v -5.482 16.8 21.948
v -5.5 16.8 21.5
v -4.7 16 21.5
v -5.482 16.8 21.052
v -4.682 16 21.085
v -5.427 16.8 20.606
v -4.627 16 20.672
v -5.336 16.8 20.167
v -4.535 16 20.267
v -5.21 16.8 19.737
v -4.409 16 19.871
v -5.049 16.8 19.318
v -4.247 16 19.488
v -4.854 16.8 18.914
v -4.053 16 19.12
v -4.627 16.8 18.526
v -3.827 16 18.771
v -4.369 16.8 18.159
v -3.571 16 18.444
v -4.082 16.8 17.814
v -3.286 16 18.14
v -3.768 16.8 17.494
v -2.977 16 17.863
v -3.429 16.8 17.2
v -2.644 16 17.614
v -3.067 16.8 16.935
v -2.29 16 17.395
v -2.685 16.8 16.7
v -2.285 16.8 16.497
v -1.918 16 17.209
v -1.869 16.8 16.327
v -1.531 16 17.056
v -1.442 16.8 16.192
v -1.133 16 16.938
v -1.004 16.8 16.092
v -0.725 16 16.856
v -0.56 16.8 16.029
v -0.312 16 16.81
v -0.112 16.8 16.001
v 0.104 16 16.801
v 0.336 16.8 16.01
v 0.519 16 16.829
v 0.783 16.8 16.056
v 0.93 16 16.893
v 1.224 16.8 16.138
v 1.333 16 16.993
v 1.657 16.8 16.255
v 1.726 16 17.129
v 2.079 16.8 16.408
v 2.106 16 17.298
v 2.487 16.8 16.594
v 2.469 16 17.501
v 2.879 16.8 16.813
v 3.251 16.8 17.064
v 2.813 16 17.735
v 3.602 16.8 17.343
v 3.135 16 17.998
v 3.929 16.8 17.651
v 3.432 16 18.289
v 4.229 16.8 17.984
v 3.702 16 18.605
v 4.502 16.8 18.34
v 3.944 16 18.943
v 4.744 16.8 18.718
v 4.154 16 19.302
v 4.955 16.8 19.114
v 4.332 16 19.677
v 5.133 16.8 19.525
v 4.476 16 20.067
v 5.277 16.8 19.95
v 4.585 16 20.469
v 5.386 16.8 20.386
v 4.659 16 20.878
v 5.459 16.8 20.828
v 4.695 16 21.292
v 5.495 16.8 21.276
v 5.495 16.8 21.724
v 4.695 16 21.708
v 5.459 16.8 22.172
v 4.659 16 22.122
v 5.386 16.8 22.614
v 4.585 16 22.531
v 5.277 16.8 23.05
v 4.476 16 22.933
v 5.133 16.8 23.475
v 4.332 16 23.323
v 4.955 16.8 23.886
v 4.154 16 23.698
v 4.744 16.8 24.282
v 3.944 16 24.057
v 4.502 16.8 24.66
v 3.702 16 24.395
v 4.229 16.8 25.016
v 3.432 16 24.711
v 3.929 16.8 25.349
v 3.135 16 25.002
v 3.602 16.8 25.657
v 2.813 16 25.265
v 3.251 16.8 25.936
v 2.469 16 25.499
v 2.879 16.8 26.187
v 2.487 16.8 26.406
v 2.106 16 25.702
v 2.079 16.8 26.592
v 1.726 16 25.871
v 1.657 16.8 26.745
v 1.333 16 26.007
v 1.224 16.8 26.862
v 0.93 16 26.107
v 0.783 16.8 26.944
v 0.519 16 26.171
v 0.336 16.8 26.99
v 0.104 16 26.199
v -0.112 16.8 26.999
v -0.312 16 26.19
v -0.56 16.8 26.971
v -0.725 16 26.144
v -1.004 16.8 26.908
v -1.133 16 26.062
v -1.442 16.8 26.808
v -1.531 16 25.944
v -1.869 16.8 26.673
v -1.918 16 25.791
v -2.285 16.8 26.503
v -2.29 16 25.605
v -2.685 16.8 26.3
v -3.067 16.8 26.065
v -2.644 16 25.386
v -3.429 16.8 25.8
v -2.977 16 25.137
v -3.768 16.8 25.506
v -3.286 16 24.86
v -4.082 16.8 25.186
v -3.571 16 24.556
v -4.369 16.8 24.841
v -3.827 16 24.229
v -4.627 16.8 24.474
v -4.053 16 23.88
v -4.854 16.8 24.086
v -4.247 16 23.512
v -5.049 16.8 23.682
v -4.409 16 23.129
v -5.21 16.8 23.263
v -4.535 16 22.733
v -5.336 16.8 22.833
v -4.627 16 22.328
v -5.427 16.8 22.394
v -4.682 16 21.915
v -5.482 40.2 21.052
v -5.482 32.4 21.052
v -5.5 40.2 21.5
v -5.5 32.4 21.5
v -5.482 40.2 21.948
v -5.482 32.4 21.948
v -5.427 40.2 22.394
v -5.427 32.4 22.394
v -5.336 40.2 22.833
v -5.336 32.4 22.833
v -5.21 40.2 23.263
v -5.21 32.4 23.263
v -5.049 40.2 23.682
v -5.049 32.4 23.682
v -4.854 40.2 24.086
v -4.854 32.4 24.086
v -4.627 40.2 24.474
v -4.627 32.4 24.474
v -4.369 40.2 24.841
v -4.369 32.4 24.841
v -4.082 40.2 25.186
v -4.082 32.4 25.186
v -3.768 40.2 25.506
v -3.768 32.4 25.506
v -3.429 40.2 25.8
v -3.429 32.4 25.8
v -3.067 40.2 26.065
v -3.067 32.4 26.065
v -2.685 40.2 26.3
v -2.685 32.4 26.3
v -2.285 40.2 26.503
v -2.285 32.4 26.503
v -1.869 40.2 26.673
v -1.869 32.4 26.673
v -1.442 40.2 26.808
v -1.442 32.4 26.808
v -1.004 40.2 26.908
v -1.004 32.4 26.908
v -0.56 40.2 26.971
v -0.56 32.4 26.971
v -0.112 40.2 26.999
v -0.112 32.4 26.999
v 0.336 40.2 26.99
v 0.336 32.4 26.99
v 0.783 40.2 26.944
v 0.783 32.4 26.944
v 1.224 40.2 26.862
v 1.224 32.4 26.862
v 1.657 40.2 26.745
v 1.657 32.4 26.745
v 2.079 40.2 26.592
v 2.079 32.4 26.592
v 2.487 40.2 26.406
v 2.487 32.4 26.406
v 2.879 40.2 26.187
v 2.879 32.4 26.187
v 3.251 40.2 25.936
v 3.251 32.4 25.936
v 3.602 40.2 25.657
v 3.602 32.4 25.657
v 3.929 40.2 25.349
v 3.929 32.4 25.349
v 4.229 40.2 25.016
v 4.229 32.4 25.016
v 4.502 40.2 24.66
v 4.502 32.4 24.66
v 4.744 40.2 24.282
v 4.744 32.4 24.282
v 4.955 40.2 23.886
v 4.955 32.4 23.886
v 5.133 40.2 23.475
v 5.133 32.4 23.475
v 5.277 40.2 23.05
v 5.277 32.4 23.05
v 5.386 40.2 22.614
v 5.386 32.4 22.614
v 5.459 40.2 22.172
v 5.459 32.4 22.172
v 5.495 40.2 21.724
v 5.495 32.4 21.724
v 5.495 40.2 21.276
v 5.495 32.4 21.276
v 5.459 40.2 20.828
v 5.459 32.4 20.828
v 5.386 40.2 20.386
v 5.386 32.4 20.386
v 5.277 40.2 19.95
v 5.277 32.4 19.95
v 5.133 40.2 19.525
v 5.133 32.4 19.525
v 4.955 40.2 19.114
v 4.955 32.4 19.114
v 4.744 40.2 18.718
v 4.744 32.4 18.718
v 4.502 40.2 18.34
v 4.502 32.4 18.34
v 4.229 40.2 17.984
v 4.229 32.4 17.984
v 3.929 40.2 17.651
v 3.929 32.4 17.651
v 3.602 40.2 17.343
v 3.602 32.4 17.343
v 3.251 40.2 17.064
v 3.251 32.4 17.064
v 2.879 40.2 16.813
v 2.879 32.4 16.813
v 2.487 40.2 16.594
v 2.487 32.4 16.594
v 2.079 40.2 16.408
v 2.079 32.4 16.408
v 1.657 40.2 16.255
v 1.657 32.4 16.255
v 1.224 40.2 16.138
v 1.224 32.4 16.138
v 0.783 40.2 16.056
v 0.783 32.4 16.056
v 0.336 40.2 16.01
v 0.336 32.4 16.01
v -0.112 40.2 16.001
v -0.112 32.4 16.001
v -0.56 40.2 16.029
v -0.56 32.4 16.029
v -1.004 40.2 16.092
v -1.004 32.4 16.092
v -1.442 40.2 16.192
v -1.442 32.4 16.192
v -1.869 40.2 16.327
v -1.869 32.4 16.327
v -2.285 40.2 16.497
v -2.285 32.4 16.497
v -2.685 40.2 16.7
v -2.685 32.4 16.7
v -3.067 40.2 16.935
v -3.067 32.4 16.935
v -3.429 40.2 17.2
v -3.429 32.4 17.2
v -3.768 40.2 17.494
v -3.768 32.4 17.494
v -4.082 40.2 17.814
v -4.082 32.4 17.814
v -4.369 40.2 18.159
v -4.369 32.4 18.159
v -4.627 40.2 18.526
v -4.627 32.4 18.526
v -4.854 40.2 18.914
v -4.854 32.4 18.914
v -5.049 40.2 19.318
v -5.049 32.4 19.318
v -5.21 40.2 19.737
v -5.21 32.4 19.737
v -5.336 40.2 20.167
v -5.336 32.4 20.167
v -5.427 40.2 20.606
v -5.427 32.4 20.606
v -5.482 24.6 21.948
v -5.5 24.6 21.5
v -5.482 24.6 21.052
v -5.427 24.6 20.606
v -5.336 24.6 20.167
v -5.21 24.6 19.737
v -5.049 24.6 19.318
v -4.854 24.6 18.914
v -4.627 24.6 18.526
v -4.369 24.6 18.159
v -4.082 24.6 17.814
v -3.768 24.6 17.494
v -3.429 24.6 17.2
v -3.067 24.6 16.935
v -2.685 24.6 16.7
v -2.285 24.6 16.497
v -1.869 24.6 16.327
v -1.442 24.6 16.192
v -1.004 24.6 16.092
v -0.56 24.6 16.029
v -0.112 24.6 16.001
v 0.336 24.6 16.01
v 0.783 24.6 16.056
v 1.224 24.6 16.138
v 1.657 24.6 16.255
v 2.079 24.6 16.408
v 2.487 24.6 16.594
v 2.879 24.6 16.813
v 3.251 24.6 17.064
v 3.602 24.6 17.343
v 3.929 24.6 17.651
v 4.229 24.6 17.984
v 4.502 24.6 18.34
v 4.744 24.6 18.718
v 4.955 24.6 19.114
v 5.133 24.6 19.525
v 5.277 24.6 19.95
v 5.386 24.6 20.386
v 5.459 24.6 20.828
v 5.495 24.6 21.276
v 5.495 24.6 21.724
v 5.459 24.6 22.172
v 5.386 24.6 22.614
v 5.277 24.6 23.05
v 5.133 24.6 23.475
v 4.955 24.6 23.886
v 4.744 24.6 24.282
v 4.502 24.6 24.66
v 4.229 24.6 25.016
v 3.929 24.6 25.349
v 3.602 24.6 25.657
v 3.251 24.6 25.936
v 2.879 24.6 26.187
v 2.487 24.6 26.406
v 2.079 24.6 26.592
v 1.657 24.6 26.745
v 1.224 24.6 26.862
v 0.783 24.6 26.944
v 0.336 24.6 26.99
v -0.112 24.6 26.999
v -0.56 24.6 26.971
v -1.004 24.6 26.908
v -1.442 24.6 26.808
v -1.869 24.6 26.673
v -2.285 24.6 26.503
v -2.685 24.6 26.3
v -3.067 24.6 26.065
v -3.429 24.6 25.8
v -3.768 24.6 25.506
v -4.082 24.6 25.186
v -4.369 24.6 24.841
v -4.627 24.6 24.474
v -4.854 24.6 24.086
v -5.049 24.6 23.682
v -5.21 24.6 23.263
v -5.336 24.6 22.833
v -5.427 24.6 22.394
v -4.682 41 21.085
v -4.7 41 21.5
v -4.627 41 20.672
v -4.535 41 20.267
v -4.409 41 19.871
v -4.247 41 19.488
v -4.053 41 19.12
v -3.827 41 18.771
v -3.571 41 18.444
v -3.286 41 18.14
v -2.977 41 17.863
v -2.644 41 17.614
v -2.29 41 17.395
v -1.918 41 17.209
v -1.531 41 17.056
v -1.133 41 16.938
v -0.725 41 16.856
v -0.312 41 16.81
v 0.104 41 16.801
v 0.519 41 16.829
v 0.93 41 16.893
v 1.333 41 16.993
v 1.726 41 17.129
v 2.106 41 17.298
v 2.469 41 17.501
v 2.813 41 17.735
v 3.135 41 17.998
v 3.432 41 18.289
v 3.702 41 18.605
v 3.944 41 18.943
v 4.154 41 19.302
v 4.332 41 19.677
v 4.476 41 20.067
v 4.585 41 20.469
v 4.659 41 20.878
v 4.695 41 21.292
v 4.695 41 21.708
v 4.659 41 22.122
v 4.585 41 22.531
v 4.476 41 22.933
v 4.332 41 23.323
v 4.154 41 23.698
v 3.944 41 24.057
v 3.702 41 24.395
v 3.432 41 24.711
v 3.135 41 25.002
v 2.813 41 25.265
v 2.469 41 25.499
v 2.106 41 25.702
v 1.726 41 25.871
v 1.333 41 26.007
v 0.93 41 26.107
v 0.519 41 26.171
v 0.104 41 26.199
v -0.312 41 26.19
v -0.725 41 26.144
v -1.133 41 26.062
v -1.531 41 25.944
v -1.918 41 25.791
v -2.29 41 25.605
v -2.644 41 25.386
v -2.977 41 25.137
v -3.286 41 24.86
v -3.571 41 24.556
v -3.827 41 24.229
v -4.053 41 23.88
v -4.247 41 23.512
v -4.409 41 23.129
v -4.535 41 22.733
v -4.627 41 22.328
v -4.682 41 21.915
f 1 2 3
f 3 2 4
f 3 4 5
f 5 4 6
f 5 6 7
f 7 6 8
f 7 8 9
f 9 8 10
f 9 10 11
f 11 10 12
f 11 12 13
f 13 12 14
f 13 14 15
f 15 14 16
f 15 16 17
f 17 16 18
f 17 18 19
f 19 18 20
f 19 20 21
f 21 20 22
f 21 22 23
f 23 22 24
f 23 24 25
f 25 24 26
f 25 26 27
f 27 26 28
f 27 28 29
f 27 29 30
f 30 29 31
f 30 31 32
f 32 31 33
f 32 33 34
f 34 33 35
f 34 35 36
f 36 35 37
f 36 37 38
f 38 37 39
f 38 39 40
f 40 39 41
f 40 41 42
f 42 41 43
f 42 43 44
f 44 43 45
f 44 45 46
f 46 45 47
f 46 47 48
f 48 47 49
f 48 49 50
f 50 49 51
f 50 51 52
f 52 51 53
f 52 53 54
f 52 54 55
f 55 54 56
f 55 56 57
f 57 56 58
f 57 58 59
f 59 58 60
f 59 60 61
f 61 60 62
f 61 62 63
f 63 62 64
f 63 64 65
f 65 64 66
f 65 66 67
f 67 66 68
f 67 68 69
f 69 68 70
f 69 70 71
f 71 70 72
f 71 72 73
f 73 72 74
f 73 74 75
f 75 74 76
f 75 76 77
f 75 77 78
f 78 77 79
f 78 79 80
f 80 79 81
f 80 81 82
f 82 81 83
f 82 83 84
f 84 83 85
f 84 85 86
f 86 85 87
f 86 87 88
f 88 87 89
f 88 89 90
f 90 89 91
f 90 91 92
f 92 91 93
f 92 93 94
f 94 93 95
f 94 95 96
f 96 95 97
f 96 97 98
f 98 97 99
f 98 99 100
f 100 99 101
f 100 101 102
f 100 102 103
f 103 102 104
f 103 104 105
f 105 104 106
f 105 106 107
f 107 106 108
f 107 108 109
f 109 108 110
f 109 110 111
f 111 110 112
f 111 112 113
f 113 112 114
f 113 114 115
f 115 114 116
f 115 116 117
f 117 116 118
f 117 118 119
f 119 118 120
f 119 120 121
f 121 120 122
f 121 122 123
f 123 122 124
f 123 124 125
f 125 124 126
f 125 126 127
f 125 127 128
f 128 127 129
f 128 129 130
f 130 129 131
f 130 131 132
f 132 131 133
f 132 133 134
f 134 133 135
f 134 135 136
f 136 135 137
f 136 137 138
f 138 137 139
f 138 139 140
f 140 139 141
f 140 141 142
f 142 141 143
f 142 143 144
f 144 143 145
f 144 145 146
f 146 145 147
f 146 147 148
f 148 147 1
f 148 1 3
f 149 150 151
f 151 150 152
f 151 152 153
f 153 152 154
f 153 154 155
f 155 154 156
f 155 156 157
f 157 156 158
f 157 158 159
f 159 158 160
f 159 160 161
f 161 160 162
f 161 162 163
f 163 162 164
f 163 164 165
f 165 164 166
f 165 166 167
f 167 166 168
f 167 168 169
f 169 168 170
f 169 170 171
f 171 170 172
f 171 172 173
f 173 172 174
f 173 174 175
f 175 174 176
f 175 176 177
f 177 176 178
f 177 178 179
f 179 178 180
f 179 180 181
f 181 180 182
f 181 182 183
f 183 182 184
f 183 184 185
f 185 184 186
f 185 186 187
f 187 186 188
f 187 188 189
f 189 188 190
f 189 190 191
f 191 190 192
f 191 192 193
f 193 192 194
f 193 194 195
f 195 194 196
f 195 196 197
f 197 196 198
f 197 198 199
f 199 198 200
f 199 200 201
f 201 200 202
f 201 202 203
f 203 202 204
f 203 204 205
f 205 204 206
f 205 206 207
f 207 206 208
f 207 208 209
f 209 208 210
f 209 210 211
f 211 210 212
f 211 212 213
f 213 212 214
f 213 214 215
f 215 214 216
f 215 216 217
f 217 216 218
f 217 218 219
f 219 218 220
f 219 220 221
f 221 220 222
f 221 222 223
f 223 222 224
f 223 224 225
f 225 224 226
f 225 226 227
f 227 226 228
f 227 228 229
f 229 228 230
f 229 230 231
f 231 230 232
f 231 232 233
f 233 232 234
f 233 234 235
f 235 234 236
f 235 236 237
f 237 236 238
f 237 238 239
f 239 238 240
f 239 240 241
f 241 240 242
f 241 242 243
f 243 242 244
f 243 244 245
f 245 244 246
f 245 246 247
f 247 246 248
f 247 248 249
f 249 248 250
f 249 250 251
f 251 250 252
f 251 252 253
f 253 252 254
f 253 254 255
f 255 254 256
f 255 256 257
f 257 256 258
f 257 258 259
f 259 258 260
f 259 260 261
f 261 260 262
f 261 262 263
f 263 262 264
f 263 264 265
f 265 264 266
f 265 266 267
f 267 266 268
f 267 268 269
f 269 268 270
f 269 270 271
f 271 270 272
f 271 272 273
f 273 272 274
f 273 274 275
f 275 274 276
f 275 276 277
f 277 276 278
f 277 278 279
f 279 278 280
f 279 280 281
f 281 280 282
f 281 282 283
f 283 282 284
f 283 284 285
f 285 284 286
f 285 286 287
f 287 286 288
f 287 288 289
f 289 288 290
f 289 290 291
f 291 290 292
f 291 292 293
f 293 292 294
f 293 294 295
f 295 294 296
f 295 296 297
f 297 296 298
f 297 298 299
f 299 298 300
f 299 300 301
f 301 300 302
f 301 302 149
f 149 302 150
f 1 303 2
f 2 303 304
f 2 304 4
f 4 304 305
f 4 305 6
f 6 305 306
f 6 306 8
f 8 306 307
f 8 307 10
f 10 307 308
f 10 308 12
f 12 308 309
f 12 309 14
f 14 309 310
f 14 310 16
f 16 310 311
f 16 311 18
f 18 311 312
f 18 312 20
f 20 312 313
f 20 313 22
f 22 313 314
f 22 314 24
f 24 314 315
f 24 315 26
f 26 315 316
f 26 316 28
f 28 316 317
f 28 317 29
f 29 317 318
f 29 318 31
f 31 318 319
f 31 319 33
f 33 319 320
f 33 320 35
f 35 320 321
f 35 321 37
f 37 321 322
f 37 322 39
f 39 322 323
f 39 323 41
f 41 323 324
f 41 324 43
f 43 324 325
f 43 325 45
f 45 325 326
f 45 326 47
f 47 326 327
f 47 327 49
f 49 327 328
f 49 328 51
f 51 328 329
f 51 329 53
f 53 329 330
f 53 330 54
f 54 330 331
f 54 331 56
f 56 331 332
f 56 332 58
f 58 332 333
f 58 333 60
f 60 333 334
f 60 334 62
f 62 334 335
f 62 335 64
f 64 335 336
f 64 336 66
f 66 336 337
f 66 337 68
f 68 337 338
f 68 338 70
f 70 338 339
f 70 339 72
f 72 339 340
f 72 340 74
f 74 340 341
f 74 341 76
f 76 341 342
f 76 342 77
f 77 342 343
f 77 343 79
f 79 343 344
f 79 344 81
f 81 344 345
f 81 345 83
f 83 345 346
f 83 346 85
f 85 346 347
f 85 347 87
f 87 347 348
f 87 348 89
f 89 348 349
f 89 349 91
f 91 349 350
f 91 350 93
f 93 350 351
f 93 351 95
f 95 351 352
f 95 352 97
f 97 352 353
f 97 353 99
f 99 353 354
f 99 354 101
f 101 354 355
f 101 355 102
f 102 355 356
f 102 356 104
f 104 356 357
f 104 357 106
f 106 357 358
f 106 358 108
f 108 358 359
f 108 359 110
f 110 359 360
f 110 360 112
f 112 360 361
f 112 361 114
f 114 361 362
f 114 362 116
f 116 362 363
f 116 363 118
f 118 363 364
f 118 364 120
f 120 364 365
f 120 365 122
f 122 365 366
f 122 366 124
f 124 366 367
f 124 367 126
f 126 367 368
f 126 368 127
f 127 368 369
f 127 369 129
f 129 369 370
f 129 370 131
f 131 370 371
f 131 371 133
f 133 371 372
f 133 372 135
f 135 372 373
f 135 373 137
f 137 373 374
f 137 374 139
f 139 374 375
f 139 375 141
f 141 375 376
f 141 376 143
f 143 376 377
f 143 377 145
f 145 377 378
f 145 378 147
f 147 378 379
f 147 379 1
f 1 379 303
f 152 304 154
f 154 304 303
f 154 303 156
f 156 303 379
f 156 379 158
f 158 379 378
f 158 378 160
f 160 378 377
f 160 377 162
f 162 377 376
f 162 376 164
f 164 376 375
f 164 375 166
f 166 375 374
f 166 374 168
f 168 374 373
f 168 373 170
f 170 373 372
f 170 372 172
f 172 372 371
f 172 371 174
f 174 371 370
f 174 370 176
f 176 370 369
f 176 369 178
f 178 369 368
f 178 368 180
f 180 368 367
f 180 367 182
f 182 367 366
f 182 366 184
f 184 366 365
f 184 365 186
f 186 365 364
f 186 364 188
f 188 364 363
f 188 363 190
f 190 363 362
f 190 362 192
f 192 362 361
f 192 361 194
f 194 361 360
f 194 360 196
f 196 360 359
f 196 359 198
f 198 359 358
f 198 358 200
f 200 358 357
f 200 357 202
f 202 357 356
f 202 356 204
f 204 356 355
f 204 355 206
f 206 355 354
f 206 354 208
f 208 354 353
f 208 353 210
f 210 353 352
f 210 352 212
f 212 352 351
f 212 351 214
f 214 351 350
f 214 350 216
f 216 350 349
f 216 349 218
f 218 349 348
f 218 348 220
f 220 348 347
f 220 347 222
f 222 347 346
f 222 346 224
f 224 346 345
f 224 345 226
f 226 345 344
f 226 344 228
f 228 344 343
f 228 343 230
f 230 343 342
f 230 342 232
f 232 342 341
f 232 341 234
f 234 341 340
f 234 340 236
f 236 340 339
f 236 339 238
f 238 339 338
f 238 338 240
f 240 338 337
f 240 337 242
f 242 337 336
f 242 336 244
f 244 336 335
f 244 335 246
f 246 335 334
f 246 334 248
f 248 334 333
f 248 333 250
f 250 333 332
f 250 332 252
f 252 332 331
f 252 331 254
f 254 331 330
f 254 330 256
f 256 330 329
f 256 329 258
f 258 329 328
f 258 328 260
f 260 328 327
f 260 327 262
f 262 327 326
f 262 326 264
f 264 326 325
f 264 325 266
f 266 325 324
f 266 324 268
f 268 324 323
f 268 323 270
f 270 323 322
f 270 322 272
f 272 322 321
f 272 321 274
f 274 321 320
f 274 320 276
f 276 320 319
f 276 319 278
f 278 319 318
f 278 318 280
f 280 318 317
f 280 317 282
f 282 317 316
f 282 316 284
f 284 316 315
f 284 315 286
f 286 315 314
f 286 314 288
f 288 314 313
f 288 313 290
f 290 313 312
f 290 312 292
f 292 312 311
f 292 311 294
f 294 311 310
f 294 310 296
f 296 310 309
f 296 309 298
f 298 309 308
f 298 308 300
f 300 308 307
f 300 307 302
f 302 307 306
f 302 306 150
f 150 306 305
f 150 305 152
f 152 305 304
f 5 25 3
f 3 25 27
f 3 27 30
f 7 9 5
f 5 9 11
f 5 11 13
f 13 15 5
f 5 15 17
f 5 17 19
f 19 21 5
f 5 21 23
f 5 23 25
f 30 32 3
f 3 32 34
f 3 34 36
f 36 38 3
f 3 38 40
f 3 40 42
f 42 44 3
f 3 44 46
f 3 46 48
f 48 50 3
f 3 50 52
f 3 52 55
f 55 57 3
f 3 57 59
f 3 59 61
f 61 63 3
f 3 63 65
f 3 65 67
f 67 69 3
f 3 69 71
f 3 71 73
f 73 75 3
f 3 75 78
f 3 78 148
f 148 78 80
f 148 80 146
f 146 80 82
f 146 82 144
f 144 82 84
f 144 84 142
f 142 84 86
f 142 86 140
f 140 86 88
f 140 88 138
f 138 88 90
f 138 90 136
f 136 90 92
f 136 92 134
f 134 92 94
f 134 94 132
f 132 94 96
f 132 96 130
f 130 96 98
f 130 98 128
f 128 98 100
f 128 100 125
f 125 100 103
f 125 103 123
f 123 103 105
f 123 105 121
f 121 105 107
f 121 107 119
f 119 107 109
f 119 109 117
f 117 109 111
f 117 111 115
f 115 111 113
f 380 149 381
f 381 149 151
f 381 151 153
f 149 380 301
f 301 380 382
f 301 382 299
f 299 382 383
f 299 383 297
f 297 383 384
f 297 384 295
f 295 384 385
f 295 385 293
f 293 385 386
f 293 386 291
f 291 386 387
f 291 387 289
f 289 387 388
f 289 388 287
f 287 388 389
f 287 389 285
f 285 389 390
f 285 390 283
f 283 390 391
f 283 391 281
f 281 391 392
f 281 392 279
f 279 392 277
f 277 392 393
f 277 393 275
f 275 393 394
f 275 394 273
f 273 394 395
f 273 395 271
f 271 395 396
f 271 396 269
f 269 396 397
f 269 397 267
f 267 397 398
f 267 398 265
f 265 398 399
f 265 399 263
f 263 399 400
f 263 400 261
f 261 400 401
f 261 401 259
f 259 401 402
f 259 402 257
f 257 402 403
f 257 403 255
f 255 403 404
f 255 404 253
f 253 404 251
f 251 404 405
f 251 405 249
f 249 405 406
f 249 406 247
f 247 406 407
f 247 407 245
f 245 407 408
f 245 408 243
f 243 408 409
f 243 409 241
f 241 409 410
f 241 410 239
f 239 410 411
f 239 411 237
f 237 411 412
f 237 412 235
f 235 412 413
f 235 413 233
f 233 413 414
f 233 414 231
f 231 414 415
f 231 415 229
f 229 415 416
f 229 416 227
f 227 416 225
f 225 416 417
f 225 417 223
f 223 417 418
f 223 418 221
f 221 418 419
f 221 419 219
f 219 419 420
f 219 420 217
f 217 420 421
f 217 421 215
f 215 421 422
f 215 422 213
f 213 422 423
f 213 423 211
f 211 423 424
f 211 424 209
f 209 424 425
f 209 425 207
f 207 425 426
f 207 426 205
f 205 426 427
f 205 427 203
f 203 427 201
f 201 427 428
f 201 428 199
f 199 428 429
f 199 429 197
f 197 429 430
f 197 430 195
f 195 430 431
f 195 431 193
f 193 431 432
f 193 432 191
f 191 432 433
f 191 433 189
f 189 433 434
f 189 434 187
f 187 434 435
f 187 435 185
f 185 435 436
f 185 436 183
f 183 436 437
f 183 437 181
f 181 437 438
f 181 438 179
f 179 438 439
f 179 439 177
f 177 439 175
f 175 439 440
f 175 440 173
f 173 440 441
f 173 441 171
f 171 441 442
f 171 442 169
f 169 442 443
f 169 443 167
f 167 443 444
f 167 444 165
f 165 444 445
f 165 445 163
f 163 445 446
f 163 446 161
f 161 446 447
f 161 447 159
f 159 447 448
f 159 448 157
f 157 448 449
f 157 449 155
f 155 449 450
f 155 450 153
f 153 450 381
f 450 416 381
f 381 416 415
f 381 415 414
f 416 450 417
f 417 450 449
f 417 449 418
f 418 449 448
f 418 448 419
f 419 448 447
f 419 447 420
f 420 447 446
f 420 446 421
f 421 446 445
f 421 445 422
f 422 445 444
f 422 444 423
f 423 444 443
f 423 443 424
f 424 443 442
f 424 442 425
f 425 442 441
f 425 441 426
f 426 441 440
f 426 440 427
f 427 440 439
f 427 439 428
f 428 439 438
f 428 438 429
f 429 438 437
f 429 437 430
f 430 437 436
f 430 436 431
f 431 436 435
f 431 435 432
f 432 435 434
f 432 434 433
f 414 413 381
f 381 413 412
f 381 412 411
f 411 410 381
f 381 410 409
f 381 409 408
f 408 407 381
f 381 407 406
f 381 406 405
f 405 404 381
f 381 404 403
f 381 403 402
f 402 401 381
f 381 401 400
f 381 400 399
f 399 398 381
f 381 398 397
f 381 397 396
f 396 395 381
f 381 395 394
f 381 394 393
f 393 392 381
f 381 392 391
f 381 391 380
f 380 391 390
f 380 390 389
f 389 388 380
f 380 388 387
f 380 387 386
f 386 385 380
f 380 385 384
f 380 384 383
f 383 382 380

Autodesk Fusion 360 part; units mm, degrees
sketch "PinWay" plane through (0, 65, 0) normal (0, 1, 0) x (1, 0, 0)
  line L0 (0, 0) -> (0, -30) construction
  line L1 (0, -30) -> (4.125, -30)
  line L2 (4.125, -30) -> (4.125, -25.8571)
  line L3 (-4.125, -30) -> (-4.125, -25.8571)
  line L4 (0, -30) -> (-4.125, -30)
  arc A0 (4.125, -25.8571) -> (-4.125, -25.8571) centre (0, -21.5) ccw
  circle A1 centre (0, -21.5) radius 5.5
  circle A2 centre (0, -21.5) radius 3
  dimension "d1" = 0
  dimension "d2" = 0
  dimension "d3" = 0
  dimension "d4" = 0
  dimension "d5" = 0
  dimension "d6" = 0
extrude "Extrude1" add sketch "PinWay" against normal blind 49 contours A1 | A2
extrude "Extrude2" cut 1 faces at (0.5081, 65, 24.6232) along direction (0, -1, 0) blind 24
chamfer "Chamfer1" distance 0.8 angle 45 2 edges at (-5.1278, 41, 19.5111) (-5.1278, 16, 19.5111)
equation "d156 = TopPinBlank"
equation "d158 = TopPinBlank + TopPinLength"
equation "TopPinLength = 25 mm"
equation "TopPinBlank = -49 mm"
equation "d1 = PinWayDiameter"
equation "d2 = PinWayDepth"
equation "d3 = BodyThickness"
equation "d4 = PinWayOpening / 2"
equation "d5 = Pin"
equation "d6 = SpoolPinCenter"
